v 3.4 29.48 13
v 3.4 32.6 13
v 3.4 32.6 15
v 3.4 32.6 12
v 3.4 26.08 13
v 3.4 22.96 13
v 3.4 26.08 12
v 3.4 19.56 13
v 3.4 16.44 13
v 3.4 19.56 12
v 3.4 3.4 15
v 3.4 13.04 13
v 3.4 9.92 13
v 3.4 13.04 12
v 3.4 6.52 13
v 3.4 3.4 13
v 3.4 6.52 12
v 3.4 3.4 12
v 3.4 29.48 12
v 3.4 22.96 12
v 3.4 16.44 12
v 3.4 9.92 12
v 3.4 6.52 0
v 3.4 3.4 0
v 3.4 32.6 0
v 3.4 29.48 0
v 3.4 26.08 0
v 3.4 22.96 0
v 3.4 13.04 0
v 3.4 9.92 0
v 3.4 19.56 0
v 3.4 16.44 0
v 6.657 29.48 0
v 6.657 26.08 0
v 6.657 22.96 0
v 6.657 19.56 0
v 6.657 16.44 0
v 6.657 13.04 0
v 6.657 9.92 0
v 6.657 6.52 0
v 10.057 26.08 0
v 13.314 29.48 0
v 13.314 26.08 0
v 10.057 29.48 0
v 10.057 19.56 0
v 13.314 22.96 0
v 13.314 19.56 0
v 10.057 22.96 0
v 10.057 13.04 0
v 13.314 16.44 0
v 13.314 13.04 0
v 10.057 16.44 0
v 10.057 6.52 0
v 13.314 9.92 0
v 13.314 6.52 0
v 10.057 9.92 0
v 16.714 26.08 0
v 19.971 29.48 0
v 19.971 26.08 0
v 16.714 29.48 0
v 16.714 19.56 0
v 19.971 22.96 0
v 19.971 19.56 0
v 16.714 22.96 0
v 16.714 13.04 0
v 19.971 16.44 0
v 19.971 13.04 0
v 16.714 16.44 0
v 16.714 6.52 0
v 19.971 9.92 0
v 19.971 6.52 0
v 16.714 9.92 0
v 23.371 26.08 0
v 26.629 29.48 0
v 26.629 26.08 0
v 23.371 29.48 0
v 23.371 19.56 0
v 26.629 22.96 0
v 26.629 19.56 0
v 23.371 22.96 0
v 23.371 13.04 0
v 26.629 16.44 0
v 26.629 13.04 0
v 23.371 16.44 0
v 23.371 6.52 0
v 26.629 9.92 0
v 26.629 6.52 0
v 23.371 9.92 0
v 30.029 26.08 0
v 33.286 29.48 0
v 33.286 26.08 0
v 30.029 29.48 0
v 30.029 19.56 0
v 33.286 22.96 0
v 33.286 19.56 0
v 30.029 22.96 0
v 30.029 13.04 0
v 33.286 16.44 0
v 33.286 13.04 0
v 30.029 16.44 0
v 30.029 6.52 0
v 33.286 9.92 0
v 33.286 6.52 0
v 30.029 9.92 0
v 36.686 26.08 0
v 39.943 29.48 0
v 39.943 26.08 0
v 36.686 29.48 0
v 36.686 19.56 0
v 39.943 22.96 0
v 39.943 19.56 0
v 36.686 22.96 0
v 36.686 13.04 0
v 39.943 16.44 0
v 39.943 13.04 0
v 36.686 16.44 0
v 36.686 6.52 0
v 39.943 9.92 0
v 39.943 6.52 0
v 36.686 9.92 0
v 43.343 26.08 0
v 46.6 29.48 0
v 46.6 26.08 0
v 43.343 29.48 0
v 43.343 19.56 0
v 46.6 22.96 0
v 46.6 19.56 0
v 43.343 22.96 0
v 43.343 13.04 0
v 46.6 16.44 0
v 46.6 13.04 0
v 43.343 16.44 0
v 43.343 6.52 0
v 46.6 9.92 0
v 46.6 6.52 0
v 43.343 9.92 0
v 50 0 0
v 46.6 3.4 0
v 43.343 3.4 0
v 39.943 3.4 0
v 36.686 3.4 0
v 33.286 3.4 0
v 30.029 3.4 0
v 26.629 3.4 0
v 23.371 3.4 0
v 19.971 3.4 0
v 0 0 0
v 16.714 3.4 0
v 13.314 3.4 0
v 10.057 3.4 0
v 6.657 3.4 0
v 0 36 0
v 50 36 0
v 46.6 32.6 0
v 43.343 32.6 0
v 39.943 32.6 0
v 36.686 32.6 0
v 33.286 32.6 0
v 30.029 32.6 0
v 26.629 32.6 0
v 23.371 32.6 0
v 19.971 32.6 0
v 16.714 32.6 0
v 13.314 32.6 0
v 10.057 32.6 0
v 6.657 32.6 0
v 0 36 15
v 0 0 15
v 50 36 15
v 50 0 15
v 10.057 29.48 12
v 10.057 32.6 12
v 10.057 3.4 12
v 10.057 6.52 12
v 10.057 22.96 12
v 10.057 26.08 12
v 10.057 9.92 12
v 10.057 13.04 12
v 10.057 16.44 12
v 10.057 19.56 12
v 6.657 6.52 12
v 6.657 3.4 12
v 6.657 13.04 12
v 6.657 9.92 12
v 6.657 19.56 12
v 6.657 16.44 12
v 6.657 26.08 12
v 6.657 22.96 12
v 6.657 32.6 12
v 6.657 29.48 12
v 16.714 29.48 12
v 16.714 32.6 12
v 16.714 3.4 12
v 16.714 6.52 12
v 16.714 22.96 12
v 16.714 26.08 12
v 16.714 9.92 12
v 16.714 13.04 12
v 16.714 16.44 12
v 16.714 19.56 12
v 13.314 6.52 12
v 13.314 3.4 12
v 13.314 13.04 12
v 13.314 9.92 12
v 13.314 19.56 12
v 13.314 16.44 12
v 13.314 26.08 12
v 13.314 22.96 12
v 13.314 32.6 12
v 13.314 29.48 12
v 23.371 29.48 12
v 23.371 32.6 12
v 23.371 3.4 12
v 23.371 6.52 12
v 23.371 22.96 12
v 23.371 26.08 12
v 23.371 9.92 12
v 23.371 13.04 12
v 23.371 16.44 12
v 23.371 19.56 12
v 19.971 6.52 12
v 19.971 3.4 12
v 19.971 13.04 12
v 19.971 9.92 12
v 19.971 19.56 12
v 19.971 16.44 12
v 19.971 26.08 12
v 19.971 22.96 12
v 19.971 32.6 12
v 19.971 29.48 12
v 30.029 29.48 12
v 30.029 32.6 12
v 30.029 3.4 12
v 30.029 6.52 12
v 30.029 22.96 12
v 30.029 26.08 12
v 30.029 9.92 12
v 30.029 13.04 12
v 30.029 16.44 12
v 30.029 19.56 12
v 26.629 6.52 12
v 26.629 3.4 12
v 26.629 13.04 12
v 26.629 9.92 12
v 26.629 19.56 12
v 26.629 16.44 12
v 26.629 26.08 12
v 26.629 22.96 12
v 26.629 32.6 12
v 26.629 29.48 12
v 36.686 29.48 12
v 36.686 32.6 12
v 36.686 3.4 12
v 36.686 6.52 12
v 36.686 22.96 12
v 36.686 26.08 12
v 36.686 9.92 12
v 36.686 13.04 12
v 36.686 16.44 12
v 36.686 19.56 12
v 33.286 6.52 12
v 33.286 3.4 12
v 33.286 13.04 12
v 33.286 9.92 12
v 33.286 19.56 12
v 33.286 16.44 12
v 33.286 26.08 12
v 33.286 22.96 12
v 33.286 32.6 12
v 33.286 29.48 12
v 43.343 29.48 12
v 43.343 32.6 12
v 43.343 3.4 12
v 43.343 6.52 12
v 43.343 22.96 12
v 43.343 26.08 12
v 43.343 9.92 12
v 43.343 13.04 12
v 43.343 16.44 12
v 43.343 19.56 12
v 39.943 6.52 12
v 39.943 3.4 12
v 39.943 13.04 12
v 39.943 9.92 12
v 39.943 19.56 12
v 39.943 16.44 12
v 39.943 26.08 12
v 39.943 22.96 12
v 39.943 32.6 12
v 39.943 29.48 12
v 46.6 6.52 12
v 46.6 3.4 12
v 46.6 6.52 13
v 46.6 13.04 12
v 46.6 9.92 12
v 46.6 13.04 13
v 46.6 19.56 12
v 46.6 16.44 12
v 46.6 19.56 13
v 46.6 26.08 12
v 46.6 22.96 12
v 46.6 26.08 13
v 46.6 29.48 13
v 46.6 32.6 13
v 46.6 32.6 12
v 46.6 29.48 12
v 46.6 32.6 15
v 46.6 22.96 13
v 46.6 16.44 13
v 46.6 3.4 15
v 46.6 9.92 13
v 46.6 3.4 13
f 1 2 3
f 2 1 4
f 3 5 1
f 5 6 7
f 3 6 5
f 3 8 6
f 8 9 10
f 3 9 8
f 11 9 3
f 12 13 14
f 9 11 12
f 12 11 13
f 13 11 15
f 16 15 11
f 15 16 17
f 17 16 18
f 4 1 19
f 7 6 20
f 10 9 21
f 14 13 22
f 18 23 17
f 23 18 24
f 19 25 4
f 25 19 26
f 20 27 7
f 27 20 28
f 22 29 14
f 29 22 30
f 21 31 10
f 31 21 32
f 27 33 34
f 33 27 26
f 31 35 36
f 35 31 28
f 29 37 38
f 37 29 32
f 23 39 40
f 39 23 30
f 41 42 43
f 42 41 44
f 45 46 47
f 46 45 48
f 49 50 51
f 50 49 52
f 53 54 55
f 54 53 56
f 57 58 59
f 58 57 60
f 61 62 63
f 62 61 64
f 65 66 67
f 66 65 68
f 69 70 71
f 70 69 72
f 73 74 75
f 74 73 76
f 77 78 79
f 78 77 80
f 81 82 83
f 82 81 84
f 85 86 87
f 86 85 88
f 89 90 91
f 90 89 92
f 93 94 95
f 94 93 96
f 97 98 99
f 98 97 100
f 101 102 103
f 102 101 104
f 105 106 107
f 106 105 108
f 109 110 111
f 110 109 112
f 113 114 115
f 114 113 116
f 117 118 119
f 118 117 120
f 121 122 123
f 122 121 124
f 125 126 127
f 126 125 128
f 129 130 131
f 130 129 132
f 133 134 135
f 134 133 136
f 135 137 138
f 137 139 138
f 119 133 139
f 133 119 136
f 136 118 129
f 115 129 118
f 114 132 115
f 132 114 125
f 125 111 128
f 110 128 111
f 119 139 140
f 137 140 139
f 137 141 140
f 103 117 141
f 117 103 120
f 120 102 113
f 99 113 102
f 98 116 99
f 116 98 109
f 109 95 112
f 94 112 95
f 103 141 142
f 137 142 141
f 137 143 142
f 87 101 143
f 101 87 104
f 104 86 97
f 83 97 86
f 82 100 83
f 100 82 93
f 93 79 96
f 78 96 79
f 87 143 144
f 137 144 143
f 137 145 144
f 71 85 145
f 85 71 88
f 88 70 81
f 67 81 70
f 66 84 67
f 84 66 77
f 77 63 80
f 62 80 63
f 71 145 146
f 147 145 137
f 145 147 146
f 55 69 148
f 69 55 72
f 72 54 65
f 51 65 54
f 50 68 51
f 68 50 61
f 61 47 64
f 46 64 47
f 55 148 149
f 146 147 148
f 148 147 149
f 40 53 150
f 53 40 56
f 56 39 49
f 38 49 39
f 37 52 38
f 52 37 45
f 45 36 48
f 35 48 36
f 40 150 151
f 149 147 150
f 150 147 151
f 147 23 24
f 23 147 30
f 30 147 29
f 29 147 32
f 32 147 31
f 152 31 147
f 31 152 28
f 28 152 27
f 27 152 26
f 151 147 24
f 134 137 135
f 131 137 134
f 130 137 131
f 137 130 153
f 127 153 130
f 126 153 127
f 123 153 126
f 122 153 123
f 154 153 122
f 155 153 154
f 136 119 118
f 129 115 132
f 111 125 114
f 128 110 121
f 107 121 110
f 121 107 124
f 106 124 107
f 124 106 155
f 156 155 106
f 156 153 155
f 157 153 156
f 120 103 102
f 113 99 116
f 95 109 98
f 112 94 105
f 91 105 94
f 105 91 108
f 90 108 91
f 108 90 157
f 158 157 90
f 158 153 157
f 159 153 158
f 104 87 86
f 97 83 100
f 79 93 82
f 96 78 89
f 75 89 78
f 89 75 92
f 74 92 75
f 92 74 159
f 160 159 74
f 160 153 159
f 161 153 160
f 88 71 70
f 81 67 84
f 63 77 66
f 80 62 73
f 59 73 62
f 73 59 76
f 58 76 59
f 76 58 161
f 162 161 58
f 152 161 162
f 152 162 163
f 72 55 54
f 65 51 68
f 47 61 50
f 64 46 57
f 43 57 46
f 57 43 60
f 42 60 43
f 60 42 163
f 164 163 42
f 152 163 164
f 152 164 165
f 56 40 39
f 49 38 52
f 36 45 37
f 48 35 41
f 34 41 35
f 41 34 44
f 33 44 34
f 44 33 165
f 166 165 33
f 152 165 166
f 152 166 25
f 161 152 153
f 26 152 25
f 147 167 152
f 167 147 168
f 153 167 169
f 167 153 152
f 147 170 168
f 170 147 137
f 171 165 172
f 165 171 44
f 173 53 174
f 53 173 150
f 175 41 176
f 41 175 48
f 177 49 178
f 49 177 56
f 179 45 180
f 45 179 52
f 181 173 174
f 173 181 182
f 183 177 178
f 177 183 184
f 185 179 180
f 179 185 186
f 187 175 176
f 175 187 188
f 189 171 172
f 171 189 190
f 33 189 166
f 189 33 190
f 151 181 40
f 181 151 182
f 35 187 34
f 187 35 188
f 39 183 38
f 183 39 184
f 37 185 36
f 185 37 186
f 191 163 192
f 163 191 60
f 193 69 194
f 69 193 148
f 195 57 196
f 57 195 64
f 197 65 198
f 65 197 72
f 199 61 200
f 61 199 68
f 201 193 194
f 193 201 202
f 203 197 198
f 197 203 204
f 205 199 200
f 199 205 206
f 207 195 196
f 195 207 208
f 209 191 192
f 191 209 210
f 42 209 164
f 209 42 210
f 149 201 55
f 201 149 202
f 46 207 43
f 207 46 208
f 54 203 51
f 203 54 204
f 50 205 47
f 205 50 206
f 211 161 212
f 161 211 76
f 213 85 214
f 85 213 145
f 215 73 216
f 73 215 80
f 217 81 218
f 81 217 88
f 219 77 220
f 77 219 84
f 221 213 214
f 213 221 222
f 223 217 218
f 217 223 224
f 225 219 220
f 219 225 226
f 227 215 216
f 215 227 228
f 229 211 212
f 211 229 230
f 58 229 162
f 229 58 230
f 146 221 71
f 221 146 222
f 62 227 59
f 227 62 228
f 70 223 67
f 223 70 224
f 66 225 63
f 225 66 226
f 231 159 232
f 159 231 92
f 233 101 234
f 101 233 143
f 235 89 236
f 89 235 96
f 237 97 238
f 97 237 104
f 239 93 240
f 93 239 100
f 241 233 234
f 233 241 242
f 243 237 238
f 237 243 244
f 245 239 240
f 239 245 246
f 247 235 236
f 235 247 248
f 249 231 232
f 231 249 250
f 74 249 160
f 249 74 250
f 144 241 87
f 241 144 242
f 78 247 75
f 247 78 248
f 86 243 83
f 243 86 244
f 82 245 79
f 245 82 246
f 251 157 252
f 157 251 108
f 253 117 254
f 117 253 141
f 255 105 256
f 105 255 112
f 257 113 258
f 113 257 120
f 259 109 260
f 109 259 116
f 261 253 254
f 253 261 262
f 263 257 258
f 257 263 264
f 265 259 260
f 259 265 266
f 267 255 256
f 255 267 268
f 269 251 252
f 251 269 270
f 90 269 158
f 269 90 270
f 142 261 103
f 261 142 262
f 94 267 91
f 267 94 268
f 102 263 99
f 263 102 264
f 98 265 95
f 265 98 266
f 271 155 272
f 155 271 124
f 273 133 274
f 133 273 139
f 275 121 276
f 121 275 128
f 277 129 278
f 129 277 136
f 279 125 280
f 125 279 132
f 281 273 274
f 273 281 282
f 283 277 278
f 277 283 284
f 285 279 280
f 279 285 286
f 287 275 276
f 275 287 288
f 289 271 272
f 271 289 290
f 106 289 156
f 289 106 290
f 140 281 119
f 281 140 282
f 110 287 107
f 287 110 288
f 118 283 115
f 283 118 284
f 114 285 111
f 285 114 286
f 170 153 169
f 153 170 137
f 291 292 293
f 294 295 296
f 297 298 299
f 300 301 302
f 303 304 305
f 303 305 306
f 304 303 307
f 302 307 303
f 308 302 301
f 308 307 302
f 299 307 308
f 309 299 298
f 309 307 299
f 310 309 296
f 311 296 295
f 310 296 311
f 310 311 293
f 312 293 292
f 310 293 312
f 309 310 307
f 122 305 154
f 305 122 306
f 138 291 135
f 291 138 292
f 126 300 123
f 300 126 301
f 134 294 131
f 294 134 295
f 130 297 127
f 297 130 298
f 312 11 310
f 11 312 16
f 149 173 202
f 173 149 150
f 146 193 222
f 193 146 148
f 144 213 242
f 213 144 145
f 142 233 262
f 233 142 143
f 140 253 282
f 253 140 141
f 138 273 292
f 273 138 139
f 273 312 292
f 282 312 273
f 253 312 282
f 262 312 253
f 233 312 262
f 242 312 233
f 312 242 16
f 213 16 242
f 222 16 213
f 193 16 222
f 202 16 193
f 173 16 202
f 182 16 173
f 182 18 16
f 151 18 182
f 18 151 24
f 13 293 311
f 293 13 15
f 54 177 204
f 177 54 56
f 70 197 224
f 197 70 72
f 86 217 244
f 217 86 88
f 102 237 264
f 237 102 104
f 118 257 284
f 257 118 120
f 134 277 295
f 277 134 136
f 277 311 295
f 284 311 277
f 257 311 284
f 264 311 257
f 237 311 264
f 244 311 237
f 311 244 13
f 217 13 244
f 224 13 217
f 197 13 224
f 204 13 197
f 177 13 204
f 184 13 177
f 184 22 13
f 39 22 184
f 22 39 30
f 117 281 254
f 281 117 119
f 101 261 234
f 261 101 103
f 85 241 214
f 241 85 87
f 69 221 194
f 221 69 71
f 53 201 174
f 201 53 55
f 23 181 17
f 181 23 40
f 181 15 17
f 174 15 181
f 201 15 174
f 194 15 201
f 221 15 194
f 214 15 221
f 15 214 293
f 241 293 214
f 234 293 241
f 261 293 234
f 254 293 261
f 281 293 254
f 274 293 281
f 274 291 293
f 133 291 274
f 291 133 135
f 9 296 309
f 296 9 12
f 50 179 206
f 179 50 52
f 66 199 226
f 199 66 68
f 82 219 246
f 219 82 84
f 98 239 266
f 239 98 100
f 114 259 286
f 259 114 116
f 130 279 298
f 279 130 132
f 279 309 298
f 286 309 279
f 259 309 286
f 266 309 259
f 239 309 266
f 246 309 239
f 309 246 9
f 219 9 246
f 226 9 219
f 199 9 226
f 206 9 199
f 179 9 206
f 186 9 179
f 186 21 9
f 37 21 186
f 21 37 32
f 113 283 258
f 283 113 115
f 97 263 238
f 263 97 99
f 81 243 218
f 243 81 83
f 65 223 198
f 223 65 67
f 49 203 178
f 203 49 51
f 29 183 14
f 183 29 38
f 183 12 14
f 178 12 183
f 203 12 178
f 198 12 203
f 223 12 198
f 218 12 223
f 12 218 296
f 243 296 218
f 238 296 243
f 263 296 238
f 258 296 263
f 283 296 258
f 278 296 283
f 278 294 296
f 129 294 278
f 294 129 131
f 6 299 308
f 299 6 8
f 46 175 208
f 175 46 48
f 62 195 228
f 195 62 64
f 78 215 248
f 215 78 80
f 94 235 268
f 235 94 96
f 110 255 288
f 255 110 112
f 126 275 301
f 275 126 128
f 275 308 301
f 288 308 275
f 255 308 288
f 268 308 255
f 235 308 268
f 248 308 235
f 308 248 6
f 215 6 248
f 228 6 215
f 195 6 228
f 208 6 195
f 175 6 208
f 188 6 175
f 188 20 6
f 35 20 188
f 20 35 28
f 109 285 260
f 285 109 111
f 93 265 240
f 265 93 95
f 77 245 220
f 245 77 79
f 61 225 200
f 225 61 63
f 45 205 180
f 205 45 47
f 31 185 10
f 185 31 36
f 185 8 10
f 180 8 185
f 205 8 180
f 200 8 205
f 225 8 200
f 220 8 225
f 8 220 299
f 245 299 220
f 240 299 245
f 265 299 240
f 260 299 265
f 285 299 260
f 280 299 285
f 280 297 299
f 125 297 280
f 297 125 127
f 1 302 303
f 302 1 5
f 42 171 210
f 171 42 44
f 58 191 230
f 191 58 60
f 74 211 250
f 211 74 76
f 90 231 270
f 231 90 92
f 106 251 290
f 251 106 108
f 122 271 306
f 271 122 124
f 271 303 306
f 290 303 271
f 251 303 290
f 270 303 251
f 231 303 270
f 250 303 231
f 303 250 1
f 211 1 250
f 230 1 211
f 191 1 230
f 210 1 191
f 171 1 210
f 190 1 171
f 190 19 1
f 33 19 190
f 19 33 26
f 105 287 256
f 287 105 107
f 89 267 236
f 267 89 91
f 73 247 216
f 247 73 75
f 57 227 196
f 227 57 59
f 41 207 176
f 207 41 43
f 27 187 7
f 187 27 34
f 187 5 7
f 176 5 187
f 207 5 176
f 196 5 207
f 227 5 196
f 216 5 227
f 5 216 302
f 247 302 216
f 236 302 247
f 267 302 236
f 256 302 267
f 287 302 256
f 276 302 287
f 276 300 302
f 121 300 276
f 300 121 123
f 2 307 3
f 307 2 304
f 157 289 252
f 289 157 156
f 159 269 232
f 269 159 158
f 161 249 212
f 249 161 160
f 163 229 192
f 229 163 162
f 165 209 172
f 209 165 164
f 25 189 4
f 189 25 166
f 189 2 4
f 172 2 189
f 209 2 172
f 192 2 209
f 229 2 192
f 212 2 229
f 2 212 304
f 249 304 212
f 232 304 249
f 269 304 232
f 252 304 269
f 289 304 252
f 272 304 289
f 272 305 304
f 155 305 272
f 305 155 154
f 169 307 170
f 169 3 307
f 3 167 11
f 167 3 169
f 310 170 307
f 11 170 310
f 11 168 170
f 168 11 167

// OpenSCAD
// Density: Draft
// Fill: 100%

LENGTH = 50;
WIDTH = 36;
HEIGHT1 = 12;
HEIGHT2 = HEIGHT1 + 1;

PITCH1 = 4.5 *1.7;
PITCH2 = 4.5 *1.7;
THICKNESS = 2*1.7;

EPSILON = 0.01;

n1 = round(LENGTH/PITCH1);
n2 = round(WIDTH/PITCH2);
echo(n1); echo(n2);

p1 = (LENGTH-THICKNESS) / n1;
p2 = (WIDTH-THICKNESS) / n2;

for (x = [0:p1:LENGTH])
    translate([x, 0, 0])
    cube([THICKNESS, WIDTH, HEIGHT1]);
    
for (y = [0:p2:WIDTH])
    translate([0, y, 0])
    cube([LENGTH, THICKNESS, HEIGHT2]);


difference() {
	cube([LENGTH, WIDTH, HEIGHT2+2]);
	translate([THICKNESS, THICKNESS, -EPSILON])
	cube([LENGTH-THICKNESS*2, WIDTH-THICKNESS*2, HEIGHT2+2 + EPSILON*2]);

}
